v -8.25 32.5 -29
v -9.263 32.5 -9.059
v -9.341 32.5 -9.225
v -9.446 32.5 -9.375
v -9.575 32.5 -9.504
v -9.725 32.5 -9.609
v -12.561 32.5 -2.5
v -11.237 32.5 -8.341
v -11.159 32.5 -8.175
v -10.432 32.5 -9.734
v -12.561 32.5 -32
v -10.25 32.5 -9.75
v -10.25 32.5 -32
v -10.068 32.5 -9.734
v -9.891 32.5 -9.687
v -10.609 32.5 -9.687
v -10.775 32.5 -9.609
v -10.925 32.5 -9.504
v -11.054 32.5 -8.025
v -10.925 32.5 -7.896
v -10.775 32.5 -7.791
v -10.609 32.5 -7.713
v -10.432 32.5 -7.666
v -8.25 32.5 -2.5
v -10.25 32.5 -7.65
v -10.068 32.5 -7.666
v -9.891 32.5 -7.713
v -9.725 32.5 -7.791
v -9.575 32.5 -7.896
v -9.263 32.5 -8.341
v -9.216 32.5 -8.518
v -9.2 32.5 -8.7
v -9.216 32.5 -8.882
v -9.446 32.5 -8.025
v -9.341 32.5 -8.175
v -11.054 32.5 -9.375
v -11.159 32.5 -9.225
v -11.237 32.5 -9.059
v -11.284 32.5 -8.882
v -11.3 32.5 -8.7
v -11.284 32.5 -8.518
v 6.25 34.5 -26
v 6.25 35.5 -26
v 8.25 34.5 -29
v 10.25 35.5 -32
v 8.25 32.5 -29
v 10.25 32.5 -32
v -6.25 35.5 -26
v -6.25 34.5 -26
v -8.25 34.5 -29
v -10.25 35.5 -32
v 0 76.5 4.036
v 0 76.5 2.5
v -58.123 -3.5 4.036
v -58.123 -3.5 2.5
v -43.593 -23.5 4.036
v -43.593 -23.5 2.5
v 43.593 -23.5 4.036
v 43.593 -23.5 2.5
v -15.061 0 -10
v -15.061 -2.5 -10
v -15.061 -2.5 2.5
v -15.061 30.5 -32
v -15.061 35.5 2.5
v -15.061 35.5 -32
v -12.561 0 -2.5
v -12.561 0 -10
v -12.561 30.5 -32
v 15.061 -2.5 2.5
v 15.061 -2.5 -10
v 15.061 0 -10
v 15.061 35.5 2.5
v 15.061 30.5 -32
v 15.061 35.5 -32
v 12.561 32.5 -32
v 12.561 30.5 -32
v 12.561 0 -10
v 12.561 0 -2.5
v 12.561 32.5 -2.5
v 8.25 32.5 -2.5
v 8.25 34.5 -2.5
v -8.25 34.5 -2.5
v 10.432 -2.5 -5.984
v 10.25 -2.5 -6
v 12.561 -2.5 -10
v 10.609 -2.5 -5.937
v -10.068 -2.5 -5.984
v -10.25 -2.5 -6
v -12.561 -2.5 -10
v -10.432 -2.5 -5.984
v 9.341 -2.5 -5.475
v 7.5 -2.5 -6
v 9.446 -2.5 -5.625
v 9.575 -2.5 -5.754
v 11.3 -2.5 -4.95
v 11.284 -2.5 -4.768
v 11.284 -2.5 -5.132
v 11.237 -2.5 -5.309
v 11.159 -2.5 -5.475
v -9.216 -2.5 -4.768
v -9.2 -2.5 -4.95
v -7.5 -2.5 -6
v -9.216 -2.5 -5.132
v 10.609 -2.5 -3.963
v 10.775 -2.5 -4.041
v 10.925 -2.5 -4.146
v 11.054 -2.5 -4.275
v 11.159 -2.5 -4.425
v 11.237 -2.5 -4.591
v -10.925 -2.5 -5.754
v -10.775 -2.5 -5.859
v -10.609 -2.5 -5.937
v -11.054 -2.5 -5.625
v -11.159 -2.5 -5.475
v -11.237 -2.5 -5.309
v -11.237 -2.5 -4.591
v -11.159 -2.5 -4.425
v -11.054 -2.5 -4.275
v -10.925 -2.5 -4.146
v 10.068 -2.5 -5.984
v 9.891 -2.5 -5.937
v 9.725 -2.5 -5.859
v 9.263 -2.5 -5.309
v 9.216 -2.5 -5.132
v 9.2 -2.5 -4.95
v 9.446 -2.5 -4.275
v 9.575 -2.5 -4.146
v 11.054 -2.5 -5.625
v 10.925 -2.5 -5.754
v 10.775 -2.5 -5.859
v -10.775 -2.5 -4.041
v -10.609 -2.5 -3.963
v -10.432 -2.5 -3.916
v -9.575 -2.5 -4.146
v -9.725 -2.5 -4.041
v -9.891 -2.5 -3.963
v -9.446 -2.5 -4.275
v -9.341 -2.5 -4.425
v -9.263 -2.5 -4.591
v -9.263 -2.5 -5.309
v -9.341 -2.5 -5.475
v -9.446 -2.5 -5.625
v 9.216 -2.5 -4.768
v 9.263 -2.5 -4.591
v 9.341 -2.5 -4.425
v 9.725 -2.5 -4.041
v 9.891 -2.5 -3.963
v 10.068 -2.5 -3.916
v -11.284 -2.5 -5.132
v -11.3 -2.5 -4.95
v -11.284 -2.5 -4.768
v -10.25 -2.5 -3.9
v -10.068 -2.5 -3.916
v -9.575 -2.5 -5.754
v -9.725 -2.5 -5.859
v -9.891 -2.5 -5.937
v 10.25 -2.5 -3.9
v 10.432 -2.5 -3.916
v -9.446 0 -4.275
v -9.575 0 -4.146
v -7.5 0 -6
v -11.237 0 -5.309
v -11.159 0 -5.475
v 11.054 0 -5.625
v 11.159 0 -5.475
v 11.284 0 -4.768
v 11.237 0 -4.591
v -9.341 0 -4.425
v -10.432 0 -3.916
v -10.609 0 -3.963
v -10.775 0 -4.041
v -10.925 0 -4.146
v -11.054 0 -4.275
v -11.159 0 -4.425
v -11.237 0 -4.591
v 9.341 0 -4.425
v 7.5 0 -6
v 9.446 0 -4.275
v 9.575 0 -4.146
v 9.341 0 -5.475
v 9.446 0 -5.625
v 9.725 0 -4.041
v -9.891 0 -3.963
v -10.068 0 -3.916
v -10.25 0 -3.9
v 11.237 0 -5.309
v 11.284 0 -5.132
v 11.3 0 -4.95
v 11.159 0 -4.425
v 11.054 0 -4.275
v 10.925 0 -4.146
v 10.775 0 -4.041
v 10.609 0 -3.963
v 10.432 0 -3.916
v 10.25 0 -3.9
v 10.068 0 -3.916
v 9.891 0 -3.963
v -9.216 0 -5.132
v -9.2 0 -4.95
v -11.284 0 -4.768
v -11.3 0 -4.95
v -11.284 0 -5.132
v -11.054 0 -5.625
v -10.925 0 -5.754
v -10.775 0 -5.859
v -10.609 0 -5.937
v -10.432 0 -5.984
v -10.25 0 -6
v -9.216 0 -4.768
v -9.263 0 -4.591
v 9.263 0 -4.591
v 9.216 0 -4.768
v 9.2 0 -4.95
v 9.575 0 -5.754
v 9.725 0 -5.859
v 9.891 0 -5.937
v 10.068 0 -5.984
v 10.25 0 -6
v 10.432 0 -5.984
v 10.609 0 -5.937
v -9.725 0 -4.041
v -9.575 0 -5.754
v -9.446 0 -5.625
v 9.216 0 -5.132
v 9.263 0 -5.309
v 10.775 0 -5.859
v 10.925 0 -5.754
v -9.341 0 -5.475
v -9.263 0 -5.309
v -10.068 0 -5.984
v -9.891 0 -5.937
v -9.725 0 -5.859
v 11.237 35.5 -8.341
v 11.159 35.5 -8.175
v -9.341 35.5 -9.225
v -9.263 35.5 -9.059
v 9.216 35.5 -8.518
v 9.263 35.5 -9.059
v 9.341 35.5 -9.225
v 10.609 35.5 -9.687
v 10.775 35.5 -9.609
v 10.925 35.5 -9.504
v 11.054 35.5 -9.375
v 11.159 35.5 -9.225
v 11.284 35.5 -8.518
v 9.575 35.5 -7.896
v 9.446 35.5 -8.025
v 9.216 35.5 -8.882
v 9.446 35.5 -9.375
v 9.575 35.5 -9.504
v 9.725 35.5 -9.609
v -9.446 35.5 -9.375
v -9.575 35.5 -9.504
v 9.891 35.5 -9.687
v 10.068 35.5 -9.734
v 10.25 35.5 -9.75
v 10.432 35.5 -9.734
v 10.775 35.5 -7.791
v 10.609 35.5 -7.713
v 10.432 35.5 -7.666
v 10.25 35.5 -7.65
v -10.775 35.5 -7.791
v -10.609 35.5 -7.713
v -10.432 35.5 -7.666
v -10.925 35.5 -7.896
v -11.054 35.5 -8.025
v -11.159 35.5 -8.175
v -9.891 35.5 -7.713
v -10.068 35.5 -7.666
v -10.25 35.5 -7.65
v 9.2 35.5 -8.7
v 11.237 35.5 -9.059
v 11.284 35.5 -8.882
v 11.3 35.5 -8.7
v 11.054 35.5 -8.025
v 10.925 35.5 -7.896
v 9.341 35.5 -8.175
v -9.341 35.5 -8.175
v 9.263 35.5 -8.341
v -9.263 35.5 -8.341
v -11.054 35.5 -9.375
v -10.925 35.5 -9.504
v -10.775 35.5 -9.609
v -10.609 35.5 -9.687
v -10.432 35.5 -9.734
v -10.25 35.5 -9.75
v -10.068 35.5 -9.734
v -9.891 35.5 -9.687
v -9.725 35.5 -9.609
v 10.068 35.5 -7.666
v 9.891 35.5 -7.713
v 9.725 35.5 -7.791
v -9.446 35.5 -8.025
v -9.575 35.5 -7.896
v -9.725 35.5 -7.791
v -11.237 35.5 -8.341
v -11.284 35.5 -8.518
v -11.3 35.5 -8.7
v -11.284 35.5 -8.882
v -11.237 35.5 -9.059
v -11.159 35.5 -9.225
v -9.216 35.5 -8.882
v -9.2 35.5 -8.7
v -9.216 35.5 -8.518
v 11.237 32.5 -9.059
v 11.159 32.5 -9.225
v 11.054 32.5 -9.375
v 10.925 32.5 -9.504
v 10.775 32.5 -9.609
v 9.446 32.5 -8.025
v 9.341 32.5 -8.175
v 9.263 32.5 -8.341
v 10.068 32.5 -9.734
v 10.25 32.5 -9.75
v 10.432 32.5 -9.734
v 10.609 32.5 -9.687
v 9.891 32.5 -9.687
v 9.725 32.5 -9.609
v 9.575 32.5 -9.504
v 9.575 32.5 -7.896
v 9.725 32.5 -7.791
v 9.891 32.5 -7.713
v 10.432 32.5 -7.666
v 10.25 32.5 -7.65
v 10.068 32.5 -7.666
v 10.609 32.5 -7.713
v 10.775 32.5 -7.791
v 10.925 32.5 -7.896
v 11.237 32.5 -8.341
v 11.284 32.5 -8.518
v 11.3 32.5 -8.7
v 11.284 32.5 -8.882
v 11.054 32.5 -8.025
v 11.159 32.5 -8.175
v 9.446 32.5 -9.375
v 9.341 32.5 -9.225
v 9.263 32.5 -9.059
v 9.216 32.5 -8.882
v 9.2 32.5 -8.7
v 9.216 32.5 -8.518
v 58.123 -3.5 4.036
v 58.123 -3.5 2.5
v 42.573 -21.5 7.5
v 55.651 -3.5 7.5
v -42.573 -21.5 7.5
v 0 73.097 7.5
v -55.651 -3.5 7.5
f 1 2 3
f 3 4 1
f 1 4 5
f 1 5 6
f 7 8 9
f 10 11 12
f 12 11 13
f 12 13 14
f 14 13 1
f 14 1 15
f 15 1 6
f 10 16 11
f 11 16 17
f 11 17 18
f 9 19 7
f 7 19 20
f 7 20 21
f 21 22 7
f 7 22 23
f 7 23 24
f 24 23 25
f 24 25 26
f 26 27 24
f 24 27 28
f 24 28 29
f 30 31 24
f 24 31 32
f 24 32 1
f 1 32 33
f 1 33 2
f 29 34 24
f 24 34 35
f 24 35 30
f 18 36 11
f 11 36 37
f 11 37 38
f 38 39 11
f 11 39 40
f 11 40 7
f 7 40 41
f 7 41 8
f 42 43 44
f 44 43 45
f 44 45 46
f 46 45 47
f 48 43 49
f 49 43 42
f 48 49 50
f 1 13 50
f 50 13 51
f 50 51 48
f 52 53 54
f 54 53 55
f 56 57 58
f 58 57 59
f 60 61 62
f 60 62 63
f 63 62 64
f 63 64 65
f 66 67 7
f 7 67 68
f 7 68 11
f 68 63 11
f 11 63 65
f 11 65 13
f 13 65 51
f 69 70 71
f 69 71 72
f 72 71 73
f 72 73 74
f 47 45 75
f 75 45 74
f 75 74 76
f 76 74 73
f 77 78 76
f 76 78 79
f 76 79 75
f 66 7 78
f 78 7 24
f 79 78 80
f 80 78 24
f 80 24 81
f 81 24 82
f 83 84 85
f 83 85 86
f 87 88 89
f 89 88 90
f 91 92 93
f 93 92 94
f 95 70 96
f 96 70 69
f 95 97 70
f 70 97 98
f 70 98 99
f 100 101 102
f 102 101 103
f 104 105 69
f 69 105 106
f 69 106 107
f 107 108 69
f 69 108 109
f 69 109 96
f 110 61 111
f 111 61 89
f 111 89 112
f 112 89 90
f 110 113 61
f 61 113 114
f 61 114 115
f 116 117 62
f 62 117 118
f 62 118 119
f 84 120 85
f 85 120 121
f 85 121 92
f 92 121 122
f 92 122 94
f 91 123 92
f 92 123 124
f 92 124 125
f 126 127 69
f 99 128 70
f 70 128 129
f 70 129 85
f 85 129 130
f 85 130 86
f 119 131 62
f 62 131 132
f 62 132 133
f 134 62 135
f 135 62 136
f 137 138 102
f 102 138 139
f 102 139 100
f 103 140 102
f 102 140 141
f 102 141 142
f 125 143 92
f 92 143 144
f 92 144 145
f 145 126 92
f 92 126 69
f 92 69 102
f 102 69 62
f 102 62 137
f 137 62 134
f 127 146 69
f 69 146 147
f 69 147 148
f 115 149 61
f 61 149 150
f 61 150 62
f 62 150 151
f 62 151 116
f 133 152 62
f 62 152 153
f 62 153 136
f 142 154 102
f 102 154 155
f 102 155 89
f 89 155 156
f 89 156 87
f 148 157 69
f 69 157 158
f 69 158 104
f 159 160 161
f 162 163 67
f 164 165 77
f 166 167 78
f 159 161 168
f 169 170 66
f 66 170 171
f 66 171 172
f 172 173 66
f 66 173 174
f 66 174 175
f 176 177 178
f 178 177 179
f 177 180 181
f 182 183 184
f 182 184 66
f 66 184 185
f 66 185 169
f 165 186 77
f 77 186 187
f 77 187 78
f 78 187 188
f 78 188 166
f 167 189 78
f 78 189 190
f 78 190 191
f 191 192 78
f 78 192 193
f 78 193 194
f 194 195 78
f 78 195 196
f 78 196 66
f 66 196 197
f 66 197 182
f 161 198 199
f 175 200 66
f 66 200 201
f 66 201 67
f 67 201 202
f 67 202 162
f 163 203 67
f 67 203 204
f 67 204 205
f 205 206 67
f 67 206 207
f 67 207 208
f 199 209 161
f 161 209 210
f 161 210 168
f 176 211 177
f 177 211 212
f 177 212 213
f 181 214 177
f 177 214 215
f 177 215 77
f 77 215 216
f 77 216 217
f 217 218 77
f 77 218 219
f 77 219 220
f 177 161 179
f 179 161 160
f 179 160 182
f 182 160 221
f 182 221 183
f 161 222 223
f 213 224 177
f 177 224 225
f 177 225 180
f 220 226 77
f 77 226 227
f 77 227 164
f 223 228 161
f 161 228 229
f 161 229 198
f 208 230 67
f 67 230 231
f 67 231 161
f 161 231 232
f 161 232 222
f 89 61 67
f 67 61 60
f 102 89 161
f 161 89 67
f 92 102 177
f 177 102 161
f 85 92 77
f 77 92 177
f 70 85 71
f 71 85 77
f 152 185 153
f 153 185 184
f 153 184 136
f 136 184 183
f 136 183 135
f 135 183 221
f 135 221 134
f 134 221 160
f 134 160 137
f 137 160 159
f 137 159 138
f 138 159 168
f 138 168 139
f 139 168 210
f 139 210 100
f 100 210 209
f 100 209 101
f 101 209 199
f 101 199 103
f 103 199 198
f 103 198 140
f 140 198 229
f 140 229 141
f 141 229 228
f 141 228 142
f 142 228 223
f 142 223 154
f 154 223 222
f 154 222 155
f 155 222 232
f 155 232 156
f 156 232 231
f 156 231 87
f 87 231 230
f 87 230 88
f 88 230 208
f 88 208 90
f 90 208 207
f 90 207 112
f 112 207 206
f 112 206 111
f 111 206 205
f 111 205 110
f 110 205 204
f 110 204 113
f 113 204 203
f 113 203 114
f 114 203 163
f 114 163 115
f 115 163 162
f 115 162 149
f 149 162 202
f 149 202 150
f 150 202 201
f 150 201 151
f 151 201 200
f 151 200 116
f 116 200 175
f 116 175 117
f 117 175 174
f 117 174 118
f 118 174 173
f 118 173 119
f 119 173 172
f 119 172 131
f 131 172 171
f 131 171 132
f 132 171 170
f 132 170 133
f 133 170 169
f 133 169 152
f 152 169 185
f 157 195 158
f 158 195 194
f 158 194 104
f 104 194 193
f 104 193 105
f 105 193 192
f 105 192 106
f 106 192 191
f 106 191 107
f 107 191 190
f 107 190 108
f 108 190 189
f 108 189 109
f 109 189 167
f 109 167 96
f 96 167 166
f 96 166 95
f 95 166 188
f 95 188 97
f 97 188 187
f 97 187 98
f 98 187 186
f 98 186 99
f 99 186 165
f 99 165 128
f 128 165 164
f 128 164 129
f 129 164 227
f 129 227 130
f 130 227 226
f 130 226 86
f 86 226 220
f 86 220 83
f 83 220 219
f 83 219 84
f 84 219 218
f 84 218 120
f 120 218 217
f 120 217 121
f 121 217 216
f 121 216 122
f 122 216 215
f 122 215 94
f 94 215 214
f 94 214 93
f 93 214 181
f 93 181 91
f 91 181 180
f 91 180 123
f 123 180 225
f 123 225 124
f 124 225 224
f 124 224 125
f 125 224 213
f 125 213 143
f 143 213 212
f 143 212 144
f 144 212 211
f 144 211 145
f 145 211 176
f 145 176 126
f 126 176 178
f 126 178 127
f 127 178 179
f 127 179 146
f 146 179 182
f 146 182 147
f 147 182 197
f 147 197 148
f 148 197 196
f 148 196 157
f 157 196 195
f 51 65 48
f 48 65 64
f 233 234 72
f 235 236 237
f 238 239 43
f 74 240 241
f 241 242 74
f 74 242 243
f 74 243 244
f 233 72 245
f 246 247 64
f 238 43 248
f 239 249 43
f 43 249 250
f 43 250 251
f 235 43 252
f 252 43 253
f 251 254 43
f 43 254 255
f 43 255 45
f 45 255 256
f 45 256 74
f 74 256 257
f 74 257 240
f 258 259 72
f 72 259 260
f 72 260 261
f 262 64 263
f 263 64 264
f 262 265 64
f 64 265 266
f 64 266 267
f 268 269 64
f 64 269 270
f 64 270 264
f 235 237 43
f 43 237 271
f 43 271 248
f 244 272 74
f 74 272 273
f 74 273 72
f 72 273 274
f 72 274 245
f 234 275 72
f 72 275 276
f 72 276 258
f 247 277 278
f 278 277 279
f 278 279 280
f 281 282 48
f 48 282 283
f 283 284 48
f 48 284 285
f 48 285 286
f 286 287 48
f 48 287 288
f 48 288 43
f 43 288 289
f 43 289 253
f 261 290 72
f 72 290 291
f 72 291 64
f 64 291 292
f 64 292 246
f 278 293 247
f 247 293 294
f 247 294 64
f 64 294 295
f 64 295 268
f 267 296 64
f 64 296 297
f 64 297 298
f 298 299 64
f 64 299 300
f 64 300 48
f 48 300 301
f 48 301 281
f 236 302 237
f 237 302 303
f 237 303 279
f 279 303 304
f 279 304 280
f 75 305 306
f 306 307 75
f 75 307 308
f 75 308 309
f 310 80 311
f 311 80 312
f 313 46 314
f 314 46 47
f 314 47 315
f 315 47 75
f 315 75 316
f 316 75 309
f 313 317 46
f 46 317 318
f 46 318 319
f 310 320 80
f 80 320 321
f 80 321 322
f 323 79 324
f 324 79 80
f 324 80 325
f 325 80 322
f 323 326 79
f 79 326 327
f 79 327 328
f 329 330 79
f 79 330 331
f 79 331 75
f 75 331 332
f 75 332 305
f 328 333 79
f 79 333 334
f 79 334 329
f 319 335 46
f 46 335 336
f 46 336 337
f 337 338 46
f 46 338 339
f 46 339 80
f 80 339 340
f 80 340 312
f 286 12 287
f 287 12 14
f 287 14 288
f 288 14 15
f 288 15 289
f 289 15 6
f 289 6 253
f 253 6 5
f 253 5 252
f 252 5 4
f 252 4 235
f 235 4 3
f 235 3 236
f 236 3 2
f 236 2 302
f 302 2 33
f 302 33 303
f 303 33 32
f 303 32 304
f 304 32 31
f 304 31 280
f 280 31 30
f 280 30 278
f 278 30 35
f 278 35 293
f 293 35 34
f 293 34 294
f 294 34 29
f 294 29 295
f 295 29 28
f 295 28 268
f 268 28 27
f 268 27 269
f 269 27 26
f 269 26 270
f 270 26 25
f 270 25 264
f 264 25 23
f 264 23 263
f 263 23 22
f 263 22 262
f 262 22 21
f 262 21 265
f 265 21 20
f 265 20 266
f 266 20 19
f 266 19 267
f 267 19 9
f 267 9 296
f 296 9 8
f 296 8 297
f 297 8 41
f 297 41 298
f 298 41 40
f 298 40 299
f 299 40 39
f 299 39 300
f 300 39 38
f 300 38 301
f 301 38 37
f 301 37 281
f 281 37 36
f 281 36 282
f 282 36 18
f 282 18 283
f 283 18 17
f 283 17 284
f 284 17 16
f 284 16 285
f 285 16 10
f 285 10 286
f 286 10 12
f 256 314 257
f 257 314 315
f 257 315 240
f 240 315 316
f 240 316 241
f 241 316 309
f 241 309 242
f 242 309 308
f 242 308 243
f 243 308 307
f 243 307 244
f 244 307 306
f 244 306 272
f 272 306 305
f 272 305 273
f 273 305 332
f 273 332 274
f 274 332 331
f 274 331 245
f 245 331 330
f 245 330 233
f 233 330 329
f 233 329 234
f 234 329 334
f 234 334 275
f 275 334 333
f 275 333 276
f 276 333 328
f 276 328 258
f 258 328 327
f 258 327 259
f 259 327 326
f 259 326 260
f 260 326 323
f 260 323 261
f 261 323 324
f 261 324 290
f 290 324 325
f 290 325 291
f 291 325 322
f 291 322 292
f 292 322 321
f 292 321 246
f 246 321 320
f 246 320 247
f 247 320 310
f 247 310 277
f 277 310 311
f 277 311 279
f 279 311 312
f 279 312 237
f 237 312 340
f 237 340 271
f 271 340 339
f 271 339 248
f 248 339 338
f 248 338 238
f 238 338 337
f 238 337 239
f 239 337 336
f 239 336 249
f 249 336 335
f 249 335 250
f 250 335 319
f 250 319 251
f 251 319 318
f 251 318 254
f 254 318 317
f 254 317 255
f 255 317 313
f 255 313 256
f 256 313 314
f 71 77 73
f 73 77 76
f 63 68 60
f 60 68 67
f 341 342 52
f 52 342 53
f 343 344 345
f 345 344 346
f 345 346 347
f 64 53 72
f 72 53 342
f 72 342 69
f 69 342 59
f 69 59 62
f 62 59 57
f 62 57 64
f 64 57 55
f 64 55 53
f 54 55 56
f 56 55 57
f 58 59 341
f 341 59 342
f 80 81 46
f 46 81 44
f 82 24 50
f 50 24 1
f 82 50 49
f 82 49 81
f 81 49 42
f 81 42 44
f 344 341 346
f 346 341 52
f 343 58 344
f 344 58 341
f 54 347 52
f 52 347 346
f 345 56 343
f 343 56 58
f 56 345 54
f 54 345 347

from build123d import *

# Parameters (mm, degrees)
BOSS_EXTRUDE1_DEPTH     = 32.5
SKETCH4_R               = 1.05
BOSS_EXTRUDE2_DEPTH     = 2.5
SKETCH5_R               = 1.05
BOSS_EXTRUDE3_DEPTH     = 3
CUT_EXTRUDE1_DEPTH      = 31.122
SKETCH13_W              = 30.122
SKETCH13_H              = 38
BOSS_EXTRUDE7_DEPTH     = 2.5
BOSS_EXTRUDE4_DEPTH     = 5
BOSS_EXTRUDE6_DEPTH     = 5
CUT_EXTRUDE2_DEPTH      = 6
SKETCH12_W              = 16.4999
SKETCH12_H              = 2
CUT_EXTRUDE4_DEPTH      = 10
CUT_EXTRUDE4_DEPTH_BACK = 23.5
CHAMFER1_SIZE           = 2
CHAMFER1_SIZE2          = 3.464101615


with BuildPart() as part:
    # Sketch2 → Boss-Extrude1 (new body)
    with BuildSketch(Plane(origin=(0, 0, 0), x_dir=(1, 0, 0), z_dir=(0, 1, 0))):
        Polygon((15.061, 0), (15.061, 32), (12.561, 32), (12.561, 2.5), (-12.561, 2.5), (-12.561, 32), (-15.061, 32), (-15.061, 0), align=None)
    extrude(amount=BOSS_EXTRUDE1_DEPTH)

    # Sketch4 → Boss-Extrude2 (add)
    with BuildSketch(Plane.XZ):
        Polygon((-7.5, -6), (7.5, -6), (12.561, -10), (15.061, -10), (15.061, 0), (-15.061, 0), (-15.061, -10), (-12.561, -10), align=None)
        with Locations((-10.2499, -4.95)):
            Circle(SKETCH4_R, mode=Mode.SUBTRACT)
        with Locations((10.2499, -4.95)):
            Circle(SKETCH4_R, mode=Mode.SUBTRACT)
    extrude(amount=BOSS_EXTRUDE2_DEPTH)

    # Sketch5 → Boss-Extrude3 (add)
    with BuildSketch(Plane(origin=(0, 32.5, 0), x_dir=(1, 0, 0), z_dir=(0, 1, 0))):
        Polygon((-15.061, 32), (-10.2499, 32), (-6.25, 26), (6.25, 26), (10.2499, 32), (15.061, 32), (15.061, 0), (-15.061, 0), align=None)
        with Locations((-10.2499, 8.7)):
            Circle(SKETCH5_R, mode=Mode.SUBTRACT)
        with Locations((10.2499, 8.7)):
            Circle(SKETCH5_R, mode=Mode.SUBTRACT)
    extrude(amount=BOSS_EXTRUDE3_DEPTH)

    # Sketch6 → Cut-Extrude1 (cut, through all)
    with BuildSketch(Plane.ZY.offset(15.061)):
        Polygon((-10, 0), (-32, 30.5), (-32, 0), align=None)
    extrude(amount=-CUT_EXTRUDE1_DEPTH, mode=Mode.SUBTRACT)

    # Sketch13 → Boss-Extrude7 (add)
    with BuildSketch(Plane.XY):
        with Locations((0, 16.5)):
            Rectangle(SKETCH13_W, SKETCH13_H)
    extrude(amount=BOSS_EXTRUDE7_DEPTH)

    # Sketch8 → Boss-Extrude4 (add)
    with BuildSketch(Plane.XY.offset(2.5)):
        Polygon((0, 76.5), (43.59255168, 16.5), (-43.59255168, 16.5), align=None)
    extrude(amount=BOSS_EXTRUDE4_DEPTH)

    # Sketch9 → Boss-Extrude6 (add)
    with BuildSketch(Plane.XY.offset(2.5)):
        Polygon((-43.59255168, 16.5), (-72.654252801, -23.5), (72.654252801, -23.5), (43.59255168, 16.5), align=None)
    extrude(amount=BOSS_EXTRUDE6_DEPTH)

    # Sketch10 → Cut-Extrude2 (cut, through all)
    with BuildSketch(Plane(origin=(0, 0, 2.5), x_dir=(-1, 0, 0), z_dir=(0, 0, -1))):
        Polygon((-43.59255168, -23.5), (-58.12340224, -3.5), (-72.654252801, -23.5), align=None)
        Polygon((72.654252801, -23.5), (58.12340224, -3.5), (43.59255168, -23.5), align=None)
    extrude(amount=-CUT_EXTRUDE2_DEPTH, mode=Mode.SUBTRACT)

    # Sketch12 → Cut-Extrude4 (cut, two sides)
    with BuildSketch(Plane(origin=(0, 0, -26), x_dir=(-1, 0, 0), z_dir=(0, 0, -1))) as cut_extrude4_sk:
        with Locations((0, 33.5)):
            Rectangle(SKETCH12_W, SKETCH12_H)
    extrude(amount=CUT_EXTRUDE4_DEPTH, mode=Mode.SUBTRACT)
    extrude(cut_extrude4_sk.sketch, amount=-CUT_EXTRUDE4_DEPTH_BACK, mode=Mode.SUBTRACT)

    # Chamfer1
    chamfer1_edges = [part.edges().sort_by_distance(p)[0] for p in [
        (-29.06170112, 36.5, 7.5),
        (0, -23.5, 7.5),
        (29.06170112, 36.5, 7.5),
        (50.85797696, -13.5, 7.5),
        (-50.85797696, -13.5, 7.5),
    ]]
    chamfer1_side = [part.faces().sort_by_distance(p)[0] for p in [
        (0, 12.152173913, 7.5),
    ]]
    chamfer(chamfer1_edges, length=CHAMFER1_SIZE, length2=CHAMFER1_SIZE2, reference=chamfer1_side[0])


solid = part.part
